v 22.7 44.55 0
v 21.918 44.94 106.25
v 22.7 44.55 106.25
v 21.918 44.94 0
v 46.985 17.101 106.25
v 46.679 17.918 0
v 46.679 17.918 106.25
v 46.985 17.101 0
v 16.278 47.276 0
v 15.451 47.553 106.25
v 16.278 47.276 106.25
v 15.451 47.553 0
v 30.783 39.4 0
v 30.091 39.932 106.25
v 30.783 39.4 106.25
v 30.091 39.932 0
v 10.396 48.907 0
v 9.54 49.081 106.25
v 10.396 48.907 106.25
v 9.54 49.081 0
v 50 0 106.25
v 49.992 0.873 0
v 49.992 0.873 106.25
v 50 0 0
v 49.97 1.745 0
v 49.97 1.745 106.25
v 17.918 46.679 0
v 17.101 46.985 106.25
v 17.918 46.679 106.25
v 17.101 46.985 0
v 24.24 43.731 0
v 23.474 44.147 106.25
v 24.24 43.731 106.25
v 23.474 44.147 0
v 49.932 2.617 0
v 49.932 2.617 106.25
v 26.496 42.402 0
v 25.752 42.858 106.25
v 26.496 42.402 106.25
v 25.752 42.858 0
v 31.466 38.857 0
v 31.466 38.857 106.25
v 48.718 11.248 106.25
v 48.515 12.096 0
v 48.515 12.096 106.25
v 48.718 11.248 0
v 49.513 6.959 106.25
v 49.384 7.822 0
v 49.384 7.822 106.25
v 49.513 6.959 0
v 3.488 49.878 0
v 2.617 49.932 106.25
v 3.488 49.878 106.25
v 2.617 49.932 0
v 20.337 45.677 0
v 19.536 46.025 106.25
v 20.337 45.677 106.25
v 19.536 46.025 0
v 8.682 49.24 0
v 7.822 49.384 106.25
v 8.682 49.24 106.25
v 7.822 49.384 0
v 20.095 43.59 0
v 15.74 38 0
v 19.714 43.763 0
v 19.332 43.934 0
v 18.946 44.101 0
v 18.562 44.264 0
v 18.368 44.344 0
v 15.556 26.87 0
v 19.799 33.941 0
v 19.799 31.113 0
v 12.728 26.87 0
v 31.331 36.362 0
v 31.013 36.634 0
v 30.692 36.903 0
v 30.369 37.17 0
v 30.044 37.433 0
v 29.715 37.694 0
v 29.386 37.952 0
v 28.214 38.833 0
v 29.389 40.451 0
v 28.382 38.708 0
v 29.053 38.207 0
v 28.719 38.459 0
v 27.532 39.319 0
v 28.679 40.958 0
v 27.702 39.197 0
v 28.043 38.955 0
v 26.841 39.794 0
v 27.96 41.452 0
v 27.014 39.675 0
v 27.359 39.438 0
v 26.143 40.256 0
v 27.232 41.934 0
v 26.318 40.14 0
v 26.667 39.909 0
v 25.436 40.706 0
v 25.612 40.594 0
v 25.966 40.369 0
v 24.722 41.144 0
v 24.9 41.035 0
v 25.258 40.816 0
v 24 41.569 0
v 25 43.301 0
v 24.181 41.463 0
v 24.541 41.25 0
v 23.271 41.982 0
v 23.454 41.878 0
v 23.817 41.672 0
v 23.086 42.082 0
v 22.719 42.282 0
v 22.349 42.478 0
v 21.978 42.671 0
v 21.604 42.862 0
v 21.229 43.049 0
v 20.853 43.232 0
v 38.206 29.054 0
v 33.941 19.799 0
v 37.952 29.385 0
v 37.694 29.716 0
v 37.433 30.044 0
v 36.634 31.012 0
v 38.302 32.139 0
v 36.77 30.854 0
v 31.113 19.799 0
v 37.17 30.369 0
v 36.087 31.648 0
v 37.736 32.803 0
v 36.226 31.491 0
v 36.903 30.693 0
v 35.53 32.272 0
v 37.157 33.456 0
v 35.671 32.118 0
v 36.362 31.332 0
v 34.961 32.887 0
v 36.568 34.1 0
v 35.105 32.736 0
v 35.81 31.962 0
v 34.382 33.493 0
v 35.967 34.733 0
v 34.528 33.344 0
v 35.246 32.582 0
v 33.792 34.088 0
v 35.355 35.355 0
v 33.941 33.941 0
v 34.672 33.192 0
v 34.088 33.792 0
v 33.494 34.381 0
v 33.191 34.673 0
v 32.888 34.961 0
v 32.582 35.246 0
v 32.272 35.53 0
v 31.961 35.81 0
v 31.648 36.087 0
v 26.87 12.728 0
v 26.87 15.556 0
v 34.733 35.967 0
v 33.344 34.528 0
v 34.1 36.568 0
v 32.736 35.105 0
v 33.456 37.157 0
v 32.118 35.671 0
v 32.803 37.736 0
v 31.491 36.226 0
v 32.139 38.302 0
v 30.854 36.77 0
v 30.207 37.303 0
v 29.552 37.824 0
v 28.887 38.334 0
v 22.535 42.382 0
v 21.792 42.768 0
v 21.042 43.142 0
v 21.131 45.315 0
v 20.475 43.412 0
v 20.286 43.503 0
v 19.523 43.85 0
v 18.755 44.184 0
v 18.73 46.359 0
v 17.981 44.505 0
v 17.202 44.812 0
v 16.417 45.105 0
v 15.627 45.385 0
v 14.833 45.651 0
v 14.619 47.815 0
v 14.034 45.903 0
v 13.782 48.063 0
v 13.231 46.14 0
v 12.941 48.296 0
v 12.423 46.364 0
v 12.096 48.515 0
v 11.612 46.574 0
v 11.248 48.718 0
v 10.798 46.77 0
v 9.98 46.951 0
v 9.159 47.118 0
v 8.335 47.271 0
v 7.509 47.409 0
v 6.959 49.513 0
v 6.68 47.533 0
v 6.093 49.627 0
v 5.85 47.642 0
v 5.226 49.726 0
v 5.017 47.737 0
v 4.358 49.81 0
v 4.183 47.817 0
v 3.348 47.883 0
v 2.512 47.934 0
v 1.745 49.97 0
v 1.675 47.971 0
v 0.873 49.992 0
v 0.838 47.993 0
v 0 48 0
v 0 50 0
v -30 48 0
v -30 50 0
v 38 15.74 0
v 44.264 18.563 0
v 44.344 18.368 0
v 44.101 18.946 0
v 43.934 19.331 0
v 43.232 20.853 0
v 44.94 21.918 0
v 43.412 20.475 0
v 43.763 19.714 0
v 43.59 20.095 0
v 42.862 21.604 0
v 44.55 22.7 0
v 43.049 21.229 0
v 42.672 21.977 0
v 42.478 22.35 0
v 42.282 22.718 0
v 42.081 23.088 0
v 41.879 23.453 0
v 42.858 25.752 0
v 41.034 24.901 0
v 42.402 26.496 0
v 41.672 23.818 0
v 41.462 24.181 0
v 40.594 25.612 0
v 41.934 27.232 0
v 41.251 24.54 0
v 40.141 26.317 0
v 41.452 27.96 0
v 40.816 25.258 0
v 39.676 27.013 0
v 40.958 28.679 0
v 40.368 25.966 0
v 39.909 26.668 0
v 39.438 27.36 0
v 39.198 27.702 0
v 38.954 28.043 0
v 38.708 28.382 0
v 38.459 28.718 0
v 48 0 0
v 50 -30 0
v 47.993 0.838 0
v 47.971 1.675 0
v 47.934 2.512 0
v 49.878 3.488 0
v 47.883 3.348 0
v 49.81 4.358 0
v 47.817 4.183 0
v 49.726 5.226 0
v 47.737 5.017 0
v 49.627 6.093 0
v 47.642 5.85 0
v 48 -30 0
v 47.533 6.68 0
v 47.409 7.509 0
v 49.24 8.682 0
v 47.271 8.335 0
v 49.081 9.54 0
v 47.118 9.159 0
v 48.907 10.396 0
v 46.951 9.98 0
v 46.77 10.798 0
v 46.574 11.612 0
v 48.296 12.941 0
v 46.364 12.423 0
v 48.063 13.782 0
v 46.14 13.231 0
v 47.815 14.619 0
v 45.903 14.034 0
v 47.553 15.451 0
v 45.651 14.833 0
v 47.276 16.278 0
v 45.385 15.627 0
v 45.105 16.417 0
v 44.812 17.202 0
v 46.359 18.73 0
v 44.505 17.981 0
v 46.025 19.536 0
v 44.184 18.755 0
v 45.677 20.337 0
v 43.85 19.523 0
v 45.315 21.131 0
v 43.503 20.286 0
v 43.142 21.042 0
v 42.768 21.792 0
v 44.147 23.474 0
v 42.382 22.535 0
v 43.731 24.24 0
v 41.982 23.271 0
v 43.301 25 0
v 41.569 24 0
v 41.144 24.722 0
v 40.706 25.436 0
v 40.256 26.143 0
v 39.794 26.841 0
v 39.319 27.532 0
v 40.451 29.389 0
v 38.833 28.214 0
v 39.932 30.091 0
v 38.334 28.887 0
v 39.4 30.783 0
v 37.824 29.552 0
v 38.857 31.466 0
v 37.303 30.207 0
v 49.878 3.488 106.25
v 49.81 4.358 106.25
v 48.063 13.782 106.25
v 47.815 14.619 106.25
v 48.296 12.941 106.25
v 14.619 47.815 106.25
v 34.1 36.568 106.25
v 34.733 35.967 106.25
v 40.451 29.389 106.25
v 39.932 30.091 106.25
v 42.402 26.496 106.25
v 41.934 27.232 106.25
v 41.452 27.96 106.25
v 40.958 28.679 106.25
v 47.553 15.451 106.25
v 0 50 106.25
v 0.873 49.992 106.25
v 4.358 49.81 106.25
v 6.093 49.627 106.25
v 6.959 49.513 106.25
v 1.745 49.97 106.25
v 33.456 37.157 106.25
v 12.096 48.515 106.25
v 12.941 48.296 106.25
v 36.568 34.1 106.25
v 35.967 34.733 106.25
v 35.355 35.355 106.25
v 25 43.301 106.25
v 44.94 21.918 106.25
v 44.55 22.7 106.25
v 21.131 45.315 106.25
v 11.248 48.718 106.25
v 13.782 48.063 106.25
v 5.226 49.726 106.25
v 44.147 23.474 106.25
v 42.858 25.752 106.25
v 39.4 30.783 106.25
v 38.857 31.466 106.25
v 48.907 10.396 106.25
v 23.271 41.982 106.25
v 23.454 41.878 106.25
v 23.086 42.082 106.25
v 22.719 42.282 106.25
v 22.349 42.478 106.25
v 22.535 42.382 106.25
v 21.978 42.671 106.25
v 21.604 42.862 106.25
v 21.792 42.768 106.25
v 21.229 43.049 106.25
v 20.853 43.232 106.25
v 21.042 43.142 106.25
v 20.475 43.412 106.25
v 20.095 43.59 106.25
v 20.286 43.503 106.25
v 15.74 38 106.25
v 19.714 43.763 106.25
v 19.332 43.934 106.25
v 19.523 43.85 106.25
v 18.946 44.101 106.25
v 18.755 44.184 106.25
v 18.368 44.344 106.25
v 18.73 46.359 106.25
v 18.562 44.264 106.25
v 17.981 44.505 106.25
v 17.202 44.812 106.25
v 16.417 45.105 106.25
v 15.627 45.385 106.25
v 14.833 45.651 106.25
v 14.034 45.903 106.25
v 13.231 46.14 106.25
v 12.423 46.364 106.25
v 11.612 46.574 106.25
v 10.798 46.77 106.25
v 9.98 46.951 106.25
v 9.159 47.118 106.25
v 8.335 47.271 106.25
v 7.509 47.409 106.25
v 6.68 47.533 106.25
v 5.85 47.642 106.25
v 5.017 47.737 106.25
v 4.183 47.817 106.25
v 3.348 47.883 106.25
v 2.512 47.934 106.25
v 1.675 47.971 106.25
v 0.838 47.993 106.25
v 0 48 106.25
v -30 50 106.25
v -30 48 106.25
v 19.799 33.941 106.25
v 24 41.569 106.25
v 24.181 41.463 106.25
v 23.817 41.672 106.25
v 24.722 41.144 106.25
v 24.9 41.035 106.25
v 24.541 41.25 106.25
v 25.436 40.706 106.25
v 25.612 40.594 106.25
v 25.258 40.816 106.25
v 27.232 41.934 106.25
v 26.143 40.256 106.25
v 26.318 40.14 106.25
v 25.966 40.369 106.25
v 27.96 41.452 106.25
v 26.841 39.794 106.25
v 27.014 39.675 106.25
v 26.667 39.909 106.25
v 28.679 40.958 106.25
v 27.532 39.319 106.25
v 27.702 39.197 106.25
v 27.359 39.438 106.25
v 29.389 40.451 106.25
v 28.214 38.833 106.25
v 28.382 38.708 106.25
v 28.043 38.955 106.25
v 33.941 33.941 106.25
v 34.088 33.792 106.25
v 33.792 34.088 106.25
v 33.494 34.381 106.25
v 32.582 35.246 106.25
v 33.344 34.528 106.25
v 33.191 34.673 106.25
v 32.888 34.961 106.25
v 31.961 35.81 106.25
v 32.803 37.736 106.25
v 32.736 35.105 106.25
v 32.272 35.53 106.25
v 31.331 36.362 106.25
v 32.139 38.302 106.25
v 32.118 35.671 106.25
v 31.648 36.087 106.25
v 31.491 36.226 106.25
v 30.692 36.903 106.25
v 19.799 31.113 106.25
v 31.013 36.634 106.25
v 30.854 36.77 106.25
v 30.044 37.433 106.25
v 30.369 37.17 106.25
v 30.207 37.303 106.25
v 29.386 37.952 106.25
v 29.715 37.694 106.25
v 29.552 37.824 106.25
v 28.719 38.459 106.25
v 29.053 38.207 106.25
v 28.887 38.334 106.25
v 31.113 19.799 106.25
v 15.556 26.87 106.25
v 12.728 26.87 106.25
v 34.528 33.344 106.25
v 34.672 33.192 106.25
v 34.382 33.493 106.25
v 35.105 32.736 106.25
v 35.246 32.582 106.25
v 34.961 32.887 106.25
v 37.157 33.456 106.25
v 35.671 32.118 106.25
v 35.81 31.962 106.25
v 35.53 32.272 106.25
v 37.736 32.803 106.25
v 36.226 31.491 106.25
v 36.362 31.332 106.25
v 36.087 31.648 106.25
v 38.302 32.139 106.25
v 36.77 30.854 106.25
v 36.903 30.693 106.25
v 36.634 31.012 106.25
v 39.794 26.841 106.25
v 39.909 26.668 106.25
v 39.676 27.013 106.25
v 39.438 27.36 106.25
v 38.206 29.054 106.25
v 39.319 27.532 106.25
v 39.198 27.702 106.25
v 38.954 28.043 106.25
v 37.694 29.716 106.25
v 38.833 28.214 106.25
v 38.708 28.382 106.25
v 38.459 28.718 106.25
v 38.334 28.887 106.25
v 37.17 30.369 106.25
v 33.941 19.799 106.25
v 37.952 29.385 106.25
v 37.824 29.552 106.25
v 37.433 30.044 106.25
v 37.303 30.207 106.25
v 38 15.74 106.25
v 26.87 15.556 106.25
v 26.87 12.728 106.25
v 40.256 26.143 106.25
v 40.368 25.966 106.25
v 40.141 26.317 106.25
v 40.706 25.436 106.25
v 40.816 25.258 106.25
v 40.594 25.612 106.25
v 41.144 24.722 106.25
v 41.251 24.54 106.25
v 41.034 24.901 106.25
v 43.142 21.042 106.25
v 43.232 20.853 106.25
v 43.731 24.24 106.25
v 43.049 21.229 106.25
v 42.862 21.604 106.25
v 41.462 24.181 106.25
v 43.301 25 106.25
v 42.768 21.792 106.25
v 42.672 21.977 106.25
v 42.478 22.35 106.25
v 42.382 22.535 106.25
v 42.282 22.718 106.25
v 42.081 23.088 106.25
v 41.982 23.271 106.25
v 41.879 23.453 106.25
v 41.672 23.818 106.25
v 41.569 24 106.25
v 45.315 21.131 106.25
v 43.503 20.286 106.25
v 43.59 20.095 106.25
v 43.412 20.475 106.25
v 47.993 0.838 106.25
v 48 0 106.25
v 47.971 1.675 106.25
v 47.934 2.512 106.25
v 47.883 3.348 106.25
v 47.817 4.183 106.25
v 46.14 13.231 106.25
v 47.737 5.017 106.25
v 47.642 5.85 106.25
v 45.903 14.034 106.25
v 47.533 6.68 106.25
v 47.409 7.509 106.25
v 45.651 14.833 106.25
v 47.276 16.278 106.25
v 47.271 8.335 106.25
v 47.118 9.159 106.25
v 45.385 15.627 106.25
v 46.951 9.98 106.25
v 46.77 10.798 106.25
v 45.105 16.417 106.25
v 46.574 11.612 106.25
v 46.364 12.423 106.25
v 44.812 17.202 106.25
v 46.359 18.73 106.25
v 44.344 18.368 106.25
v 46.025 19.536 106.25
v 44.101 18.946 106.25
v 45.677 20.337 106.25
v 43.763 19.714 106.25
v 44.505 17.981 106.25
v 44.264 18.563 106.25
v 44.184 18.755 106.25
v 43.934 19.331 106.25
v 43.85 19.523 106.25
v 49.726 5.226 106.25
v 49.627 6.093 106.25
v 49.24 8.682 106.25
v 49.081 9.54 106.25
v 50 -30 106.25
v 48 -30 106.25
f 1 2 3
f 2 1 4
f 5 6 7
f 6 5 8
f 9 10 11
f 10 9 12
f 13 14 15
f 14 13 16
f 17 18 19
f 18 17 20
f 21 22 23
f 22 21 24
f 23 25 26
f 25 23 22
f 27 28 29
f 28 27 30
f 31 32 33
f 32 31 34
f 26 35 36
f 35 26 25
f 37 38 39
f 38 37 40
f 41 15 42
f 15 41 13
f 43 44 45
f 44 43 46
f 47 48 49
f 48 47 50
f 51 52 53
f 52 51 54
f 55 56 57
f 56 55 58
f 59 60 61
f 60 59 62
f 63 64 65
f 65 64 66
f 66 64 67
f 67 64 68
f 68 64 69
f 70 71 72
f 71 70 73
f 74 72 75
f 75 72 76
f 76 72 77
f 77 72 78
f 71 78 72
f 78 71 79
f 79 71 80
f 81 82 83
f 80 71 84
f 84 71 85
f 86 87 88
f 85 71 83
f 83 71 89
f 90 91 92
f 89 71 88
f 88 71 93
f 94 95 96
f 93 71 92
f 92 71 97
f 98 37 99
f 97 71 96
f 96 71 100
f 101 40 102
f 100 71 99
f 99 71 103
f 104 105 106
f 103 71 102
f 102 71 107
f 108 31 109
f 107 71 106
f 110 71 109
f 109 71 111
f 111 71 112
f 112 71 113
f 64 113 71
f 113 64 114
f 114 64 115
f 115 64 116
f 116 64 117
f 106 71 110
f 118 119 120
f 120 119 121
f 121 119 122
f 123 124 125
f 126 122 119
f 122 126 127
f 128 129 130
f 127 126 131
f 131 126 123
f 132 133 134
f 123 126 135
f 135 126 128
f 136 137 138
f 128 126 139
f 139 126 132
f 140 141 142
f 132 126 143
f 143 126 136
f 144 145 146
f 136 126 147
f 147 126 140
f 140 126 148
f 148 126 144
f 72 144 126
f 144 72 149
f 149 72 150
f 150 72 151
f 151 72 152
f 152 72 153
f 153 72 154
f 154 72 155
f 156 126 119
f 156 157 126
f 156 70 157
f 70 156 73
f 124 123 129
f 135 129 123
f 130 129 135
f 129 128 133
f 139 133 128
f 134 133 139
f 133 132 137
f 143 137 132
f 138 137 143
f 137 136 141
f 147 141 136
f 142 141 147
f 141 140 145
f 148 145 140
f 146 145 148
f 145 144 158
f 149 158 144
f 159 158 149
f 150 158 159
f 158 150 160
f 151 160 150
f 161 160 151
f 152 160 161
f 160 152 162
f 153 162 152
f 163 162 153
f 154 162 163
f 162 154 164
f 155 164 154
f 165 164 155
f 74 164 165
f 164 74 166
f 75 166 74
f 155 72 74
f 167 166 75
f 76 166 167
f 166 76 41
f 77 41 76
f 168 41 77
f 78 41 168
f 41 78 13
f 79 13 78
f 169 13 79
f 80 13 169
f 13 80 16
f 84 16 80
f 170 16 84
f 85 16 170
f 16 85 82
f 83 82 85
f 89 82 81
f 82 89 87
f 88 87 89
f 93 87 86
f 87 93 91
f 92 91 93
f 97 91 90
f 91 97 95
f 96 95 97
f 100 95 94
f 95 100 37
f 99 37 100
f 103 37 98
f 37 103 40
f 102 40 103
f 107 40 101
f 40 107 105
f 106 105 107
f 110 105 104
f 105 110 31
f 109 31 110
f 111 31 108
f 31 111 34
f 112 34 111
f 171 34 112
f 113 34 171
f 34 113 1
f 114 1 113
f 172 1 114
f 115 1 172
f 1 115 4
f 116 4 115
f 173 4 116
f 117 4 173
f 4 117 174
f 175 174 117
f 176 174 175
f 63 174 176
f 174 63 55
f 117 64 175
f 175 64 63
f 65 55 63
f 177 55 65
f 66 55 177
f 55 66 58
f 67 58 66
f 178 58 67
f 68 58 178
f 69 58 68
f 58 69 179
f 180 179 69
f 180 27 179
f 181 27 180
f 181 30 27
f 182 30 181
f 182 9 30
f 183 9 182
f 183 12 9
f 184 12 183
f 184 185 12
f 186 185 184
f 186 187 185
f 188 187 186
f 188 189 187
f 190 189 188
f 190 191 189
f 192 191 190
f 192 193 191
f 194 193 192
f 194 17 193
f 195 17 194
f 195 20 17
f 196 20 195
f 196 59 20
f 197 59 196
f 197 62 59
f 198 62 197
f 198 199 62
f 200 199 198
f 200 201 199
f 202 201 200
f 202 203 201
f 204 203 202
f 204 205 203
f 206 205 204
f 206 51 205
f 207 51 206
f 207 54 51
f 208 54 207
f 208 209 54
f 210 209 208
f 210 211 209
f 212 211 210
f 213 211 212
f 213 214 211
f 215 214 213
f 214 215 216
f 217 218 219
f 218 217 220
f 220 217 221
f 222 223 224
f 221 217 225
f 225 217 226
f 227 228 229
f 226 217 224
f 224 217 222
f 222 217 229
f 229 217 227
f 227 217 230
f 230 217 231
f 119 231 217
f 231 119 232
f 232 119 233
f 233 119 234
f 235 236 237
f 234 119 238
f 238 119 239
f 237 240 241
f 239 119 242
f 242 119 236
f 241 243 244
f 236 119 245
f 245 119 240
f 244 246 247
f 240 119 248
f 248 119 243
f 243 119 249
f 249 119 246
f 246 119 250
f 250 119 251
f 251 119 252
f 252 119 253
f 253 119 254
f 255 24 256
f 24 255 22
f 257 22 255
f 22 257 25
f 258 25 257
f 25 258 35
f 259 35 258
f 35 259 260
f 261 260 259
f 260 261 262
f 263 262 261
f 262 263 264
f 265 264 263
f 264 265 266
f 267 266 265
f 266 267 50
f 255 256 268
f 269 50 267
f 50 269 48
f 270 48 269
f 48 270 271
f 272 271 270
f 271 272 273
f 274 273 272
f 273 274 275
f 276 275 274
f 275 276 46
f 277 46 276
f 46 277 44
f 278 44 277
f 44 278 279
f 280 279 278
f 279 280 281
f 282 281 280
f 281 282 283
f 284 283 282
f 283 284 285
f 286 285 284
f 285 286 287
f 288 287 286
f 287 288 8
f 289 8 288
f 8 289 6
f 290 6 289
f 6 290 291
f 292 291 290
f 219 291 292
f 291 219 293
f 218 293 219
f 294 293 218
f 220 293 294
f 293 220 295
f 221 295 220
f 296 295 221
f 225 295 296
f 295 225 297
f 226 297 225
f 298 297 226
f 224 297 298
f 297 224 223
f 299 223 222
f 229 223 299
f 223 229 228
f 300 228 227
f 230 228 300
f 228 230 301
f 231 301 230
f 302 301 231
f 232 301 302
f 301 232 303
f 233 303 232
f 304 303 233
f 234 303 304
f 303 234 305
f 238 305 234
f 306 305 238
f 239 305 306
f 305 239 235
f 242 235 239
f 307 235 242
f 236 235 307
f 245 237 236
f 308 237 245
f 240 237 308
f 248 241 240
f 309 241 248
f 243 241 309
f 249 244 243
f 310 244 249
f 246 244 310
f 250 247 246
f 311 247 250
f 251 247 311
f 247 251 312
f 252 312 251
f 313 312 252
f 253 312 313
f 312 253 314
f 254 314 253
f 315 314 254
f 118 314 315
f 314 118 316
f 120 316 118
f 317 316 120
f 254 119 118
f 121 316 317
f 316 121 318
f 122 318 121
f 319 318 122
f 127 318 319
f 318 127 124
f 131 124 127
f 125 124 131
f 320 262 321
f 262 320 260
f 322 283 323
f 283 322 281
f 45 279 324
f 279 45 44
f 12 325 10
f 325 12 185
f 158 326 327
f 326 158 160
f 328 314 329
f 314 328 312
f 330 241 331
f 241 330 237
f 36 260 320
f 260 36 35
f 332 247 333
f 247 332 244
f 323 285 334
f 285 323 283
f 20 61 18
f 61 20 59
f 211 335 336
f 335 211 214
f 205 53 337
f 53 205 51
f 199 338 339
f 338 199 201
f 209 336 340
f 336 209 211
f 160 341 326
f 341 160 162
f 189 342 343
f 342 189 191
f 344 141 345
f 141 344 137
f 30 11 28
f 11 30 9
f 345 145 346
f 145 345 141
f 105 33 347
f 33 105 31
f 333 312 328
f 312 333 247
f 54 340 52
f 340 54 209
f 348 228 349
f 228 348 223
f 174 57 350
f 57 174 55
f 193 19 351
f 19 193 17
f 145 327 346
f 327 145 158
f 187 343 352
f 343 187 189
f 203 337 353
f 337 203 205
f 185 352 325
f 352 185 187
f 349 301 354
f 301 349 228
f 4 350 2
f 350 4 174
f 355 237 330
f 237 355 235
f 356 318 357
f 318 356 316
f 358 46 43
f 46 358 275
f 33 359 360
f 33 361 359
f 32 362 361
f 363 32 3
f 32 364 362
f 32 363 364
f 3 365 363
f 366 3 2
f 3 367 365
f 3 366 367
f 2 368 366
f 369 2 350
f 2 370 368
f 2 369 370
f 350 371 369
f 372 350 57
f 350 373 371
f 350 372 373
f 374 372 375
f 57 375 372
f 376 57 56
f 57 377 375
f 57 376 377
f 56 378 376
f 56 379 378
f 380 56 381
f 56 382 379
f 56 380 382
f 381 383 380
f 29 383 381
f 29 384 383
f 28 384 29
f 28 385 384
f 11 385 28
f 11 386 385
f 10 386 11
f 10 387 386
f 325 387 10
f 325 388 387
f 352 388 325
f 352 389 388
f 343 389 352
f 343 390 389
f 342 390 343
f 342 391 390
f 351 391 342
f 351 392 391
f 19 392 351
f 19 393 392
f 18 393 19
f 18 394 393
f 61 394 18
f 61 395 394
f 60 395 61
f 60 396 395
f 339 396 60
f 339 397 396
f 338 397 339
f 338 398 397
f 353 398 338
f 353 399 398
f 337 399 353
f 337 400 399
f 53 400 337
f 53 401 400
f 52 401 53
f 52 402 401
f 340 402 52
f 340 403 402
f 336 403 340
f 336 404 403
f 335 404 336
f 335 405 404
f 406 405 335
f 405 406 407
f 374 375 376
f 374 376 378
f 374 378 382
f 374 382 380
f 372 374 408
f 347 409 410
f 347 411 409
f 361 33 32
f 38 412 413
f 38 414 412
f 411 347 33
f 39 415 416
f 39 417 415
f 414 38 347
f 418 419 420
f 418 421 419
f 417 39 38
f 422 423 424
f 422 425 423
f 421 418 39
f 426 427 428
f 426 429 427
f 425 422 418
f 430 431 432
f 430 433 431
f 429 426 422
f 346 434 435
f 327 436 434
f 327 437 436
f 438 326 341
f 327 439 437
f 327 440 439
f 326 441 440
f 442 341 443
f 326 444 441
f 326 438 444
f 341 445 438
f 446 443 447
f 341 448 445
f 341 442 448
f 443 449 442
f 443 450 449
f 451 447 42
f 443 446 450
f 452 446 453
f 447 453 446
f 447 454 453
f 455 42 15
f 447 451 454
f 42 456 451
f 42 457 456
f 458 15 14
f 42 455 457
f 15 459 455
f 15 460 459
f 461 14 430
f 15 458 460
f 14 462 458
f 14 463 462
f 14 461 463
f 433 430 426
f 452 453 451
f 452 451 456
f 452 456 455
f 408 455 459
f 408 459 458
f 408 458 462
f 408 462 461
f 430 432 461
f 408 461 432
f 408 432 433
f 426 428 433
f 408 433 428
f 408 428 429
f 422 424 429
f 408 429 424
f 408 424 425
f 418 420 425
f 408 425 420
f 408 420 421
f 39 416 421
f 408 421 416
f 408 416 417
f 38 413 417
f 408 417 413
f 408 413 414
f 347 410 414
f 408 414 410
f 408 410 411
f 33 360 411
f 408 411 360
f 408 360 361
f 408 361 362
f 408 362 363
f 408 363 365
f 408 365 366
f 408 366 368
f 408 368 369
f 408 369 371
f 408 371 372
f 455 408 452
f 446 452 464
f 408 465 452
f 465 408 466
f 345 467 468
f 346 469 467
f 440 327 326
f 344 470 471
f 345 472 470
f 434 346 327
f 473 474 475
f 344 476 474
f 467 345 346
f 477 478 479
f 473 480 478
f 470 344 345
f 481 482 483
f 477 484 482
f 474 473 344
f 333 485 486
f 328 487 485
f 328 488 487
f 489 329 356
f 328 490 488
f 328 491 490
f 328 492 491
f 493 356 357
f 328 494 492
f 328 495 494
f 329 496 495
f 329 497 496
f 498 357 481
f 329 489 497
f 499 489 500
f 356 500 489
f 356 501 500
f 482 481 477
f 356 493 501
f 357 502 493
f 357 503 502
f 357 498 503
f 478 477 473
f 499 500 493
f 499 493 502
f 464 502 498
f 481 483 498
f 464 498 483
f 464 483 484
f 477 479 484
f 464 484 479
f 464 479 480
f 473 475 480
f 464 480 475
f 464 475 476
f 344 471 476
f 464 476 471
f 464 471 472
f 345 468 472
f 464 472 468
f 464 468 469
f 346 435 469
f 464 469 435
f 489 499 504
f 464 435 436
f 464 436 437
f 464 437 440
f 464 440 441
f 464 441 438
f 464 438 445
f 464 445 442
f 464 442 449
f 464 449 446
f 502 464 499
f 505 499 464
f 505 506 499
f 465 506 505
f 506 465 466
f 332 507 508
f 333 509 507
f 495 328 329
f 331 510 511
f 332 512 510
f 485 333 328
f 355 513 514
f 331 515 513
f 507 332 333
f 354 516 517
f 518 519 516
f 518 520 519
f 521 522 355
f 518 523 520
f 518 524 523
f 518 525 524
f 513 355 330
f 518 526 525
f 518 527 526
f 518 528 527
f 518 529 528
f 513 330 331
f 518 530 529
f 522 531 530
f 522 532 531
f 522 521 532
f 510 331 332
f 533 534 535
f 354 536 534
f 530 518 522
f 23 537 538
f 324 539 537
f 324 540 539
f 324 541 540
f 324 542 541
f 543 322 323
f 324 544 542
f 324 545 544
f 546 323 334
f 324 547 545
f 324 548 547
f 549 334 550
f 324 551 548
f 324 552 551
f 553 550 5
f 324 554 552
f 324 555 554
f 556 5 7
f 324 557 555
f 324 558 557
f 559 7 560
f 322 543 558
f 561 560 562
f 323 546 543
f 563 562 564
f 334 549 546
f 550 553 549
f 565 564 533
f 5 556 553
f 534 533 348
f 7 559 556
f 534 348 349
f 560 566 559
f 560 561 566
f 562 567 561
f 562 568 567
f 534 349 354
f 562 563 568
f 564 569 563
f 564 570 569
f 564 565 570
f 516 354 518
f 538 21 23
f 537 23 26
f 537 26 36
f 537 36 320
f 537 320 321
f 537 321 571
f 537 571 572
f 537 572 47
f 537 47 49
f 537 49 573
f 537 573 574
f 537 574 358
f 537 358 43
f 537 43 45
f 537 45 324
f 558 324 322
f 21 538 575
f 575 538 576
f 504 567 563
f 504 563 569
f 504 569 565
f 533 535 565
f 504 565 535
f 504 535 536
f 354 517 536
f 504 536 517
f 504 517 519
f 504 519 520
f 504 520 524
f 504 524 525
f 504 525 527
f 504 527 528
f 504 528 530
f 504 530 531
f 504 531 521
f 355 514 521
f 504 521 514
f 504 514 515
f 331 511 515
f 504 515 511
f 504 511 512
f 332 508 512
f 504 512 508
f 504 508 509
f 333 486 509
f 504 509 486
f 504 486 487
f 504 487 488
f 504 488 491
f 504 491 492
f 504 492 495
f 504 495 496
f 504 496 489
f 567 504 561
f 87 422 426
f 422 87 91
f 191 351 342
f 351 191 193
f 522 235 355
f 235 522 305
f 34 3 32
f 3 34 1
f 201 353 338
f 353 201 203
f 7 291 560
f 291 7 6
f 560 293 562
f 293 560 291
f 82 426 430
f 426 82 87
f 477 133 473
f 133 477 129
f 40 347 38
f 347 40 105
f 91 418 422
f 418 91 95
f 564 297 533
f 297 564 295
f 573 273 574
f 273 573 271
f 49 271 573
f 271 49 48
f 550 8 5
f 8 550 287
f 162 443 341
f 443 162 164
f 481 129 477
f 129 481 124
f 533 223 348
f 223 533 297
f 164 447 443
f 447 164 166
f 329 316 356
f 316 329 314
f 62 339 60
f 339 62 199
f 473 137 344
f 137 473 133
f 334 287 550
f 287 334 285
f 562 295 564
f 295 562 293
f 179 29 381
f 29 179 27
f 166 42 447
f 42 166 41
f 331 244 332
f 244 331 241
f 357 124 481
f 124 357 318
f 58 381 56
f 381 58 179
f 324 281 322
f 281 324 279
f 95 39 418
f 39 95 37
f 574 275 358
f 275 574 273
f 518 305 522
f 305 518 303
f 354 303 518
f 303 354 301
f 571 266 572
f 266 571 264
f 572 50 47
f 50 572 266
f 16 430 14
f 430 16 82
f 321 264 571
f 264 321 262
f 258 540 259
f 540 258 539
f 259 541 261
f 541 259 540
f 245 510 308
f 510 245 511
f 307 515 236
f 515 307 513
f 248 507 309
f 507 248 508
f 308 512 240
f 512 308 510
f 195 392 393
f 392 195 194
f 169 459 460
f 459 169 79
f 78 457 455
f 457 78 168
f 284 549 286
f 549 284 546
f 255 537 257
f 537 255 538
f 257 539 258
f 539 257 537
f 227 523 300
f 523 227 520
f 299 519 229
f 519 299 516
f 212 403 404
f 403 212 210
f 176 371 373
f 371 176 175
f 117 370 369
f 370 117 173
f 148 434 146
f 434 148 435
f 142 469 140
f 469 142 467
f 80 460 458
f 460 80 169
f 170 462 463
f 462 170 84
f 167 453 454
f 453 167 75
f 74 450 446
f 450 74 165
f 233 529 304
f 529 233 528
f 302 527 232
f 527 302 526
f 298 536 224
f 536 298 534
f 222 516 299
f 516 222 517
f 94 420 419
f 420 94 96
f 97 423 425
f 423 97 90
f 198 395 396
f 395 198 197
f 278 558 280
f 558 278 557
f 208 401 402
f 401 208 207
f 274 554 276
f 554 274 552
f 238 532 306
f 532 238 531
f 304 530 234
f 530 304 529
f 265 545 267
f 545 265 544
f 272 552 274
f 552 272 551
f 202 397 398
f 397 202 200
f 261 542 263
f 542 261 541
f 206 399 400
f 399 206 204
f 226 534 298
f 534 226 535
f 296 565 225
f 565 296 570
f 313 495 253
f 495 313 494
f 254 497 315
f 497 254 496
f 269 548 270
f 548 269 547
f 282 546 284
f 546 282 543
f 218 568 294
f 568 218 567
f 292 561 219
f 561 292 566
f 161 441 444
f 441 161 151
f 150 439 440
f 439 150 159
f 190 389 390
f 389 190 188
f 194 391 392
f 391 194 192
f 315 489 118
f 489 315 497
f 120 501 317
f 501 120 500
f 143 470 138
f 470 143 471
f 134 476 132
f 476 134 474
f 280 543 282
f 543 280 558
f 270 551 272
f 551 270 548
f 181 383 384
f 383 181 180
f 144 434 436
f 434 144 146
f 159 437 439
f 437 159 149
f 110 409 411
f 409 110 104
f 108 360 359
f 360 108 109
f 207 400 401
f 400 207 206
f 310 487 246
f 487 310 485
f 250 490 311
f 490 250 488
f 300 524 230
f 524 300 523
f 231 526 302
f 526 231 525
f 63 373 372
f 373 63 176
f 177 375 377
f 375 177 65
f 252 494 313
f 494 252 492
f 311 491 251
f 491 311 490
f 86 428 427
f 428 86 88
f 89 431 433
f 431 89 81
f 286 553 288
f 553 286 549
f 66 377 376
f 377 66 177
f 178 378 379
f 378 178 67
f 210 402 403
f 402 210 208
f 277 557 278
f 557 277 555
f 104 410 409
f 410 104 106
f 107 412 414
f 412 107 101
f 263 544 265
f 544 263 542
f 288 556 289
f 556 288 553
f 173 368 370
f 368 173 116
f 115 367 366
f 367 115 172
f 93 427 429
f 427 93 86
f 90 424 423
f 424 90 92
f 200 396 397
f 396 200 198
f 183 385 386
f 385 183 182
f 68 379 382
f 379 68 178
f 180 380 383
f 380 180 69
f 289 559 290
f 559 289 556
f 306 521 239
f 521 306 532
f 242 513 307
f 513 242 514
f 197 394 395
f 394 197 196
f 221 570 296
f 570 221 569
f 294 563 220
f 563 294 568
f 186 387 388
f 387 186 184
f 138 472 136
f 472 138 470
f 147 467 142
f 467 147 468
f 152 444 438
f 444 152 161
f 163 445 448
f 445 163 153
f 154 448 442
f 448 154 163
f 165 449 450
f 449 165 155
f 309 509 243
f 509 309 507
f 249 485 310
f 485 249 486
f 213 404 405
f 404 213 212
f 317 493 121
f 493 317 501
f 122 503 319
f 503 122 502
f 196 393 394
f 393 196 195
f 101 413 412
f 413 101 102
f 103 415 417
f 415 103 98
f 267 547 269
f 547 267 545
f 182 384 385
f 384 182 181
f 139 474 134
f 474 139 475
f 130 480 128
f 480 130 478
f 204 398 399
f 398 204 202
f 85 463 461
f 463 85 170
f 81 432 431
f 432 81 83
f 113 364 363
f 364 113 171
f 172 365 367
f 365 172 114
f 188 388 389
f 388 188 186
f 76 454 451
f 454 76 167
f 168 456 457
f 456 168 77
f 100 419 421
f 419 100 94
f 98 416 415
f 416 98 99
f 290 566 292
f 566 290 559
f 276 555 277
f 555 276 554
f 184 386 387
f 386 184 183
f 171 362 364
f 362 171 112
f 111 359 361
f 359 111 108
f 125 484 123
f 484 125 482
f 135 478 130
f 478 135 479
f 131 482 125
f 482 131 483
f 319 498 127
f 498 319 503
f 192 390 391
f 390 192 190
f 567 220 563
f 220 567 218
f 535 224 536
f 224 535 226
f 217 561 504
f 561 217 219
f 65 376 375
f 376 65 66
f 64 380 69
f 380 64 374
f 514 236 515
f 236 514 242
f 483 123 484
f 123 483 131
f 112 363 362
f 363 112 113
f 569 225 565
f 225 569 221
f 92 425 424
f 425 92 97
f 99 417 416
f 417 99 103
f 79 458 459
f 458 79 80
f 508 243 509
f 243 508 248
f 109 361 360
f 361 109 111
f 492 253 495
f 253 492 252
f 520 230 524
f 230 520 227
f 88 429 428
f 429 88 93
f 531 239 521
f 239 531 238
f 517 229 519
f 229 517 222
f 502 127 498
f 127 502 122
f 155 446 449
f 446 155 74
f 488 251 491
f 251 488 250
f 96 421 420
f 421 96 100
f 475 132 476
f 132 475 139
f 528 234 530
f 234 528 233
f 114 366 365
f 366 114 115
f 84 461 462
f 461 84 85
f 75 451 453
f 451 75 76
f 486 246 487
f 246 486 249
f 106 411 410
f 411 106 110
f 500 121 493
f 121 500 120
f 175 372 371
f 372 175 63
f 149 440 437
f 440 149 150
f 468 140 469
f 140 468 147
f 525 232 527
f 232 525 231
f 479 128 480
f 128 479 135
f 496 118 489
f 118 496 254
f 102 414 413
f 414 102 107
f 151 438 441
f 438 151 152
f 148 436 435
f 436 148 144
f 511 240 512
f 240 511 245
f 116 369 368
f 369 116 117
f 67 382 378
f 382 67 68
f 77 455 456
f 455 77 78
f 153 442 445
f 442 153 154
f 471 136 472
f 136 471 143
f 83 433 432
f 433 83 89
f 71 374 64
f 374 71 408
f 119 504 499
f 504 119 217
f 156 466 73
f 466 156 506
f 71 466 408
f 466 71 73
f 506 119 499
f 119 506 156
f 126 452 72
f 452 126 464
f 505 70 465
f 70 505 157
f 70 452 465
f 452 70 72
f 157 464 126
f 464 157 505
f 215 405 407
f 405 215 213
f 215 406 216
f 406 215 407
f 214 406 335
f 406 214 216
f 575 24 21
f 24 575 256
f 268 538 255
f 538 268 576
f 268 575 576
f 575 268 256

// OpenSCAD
// file: dotscad/pie.scad
/**
 * pie.scad
 *
 * Use this module to generate a pie- or pizza- slice shape, which is particularly useful
 * in combination with `difference()` and `intersection()` to render shapes that extend a
 * certain number of degrees around or within a circle.
 *
 * This openSCAD library is part of the [dotscad](https://github.com/dotscad/dotscad)
 * project.
 *
 * @copyright  Chris Petersen, 2013
 * @license    http://creativecommons.org/licenses/LGPL/2.1/
 * @license    http://creativecommons.org/licenses/by-sa/3.0/
 *
 * @see        http://www.thingiverse.com/thing:109467
 * @source     https://github.com/dotscad/dotscad/blob/master/pie.scad
 *
 * @param float radius Radius of the pie
 * @param float angle  Angle (size) of the pie to slice
 * @param float height Height (thickness) of the pie
 * @param float spin   Angle to spin the slice on the Z axis
 */
module pie(radius, angle, height, spin=0) {
    // Negative angles shift direction of rotation
    clockwise = (angle < 0) ? true : false;
    // Support angles < 0 and > 360
    normalized_angle = abs((angle % 360 != 0) ? angle % 360 : angle % 360 + 360);
    // Select rotation direction
    rotation = clockwise ? [0, 180 - normalized_angle] : [180, normalized_angle];
    // Render
    if (angle != 0) {
        rotate([0,0,spin]) linear_extrude(height=height)
            difference() {
                circle(radius);
                if (normalized_angle < 180) {
                    union() for(a = rotation)
                        rotate(a) translate([-radius, 0, 0]) square(radius * 2);
                }
                else if (normalized_angle != 360) {
                    intersection_for(a = rotation)
                        rotate(a) translate([-radius, 0, 0]) square(radius * 2);
                }
            }
    }
}

/*
 * When this file is opened directly in OpenSCAD, the following code will render an
 * example of the functions it provides.  This example will *not* render if this module
 * is imported into your own project via the `use` statement.
 */
pie_example();
module pie_example($fn=50) {
    union() {
        pie(40, 45, 5);
        rotate([0,0,-5]) difference() {
            sphere(r=25);
            translate([0,0,-30]) pie(50, -45, 60, 15);
        }
    }
}
// main file
use <dotscad/pie.scad>;

total_height = 425;

HottubCorner(50, 30, total_height/4, 2);
//ConnectorFemale(50, 100, 10, 10, 1);

$fn=360;

module HottubCorner(radius, side_width, height, thickness) {    
    Corner(radius, height, thickness);
    rotate(45) translate([radius -thickness - 10, 0, 0]) {
        ConnectorFemale(radius - thickness, height, 10, 20, 2);
    }
    translate([0,  radius - thickness, 0]) rotate(90) Side(side_width, height, thickness);
    translate([radius - thickness, -side_width, 0]) Side(side_width, height, thickness);
}

module Corner(radius, height, thickness) {
    difference() {
        pie(radius, 90, height);
        pie(radius-thickness, 90, height);
    }
}

module Side(width, height, thickness) {
    cube([thickness, width, height]);
}

module ConnectorFemale(radius, height, box_depth, box_width, box_wall) {
    ConnectorBase(radius, height);
    translate([-box_depth/2, 0 , height/2]) difference() {
        cube([box_depth, box_width, height], center=true);
        cube([box_depth - 2*box_wall, box_width - 2*box_wall, height], center=true);
    }
}

module ConnectorBase(radius, height) {
    translate([-radius + 10, 0, 0]) difference() {
        rotate(-45/2) pie(radius, 45, height);
        translate([0, -50, -1]) cube([radius - 10, 100, height * 2]);
    }
}
